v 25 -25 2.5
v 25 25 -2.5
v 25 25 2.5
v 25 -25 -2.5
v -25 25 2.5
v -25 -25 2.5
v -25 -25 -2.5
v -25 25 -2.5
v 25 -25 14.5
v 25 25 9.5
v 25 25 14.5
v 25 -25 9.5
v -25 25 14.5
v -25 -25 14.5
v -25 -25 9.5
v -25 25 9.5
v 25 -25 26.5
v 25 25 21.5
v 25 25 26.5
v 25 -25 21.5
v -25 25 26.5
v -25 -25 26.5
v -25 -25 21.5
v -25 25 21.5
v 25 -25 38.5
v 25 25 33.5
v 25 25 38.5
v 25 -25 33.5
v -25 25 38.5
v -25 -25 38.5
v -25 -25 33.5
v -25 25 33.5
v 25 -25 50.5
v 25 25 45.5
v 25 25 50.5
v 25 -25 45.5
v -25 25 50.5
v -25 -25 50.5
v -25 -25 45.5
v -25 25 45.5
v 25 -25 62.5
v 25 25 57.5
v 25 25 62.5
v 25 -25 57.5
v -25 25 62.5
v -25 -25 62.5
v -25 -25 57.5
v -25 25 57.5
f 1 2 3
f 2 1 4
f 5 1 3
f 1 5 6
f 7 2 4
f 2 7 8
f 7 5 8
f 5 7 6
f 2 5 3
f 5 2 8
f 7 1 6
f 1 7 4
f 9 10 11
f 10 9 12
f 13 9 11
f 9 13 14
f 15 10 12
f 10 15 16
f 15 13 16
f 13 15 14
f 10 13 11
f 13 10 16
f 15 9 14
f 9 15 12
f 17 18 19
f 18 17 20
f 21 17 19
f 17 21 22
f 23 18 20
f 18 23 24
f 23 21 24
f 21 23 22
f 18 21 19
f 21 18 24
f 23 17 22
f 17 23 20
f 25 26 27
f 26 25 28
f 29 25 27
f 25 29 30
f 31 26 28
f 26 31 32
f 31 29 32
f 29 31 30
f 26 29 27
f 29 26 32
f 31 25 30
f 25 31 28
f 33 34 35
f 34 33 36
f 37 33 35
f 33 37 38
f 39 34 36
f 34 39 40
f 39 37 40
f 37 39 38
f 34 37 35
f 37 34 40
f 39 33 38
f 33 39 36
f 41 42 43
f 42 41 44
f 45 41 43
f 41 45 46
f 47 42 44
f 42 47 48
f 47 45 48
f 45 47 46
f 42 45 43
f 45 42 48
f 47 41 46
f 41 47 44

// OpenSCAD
// Define parameters for the flat square plates
plate_size = 50; // Length and width of the square plate
plate_thickness = 5; // Thickness of each plate
plate_spacing = 7; // Adjusted spacing between each plate in the vertical stack

// Function to create a flat square plate
module flat_square_plate() {
    cube([plate_size, plate_size, plate_thickness], center = true);
}

// Assemble the stack of flat square plates
module stacked_plates() {
    for (i = [0:5]) {
        translate([0, 0, i * (plate_thickness + plate_spacing)])
            flat_square_plate();
    }
}

// Render the model
stacked_plates();
